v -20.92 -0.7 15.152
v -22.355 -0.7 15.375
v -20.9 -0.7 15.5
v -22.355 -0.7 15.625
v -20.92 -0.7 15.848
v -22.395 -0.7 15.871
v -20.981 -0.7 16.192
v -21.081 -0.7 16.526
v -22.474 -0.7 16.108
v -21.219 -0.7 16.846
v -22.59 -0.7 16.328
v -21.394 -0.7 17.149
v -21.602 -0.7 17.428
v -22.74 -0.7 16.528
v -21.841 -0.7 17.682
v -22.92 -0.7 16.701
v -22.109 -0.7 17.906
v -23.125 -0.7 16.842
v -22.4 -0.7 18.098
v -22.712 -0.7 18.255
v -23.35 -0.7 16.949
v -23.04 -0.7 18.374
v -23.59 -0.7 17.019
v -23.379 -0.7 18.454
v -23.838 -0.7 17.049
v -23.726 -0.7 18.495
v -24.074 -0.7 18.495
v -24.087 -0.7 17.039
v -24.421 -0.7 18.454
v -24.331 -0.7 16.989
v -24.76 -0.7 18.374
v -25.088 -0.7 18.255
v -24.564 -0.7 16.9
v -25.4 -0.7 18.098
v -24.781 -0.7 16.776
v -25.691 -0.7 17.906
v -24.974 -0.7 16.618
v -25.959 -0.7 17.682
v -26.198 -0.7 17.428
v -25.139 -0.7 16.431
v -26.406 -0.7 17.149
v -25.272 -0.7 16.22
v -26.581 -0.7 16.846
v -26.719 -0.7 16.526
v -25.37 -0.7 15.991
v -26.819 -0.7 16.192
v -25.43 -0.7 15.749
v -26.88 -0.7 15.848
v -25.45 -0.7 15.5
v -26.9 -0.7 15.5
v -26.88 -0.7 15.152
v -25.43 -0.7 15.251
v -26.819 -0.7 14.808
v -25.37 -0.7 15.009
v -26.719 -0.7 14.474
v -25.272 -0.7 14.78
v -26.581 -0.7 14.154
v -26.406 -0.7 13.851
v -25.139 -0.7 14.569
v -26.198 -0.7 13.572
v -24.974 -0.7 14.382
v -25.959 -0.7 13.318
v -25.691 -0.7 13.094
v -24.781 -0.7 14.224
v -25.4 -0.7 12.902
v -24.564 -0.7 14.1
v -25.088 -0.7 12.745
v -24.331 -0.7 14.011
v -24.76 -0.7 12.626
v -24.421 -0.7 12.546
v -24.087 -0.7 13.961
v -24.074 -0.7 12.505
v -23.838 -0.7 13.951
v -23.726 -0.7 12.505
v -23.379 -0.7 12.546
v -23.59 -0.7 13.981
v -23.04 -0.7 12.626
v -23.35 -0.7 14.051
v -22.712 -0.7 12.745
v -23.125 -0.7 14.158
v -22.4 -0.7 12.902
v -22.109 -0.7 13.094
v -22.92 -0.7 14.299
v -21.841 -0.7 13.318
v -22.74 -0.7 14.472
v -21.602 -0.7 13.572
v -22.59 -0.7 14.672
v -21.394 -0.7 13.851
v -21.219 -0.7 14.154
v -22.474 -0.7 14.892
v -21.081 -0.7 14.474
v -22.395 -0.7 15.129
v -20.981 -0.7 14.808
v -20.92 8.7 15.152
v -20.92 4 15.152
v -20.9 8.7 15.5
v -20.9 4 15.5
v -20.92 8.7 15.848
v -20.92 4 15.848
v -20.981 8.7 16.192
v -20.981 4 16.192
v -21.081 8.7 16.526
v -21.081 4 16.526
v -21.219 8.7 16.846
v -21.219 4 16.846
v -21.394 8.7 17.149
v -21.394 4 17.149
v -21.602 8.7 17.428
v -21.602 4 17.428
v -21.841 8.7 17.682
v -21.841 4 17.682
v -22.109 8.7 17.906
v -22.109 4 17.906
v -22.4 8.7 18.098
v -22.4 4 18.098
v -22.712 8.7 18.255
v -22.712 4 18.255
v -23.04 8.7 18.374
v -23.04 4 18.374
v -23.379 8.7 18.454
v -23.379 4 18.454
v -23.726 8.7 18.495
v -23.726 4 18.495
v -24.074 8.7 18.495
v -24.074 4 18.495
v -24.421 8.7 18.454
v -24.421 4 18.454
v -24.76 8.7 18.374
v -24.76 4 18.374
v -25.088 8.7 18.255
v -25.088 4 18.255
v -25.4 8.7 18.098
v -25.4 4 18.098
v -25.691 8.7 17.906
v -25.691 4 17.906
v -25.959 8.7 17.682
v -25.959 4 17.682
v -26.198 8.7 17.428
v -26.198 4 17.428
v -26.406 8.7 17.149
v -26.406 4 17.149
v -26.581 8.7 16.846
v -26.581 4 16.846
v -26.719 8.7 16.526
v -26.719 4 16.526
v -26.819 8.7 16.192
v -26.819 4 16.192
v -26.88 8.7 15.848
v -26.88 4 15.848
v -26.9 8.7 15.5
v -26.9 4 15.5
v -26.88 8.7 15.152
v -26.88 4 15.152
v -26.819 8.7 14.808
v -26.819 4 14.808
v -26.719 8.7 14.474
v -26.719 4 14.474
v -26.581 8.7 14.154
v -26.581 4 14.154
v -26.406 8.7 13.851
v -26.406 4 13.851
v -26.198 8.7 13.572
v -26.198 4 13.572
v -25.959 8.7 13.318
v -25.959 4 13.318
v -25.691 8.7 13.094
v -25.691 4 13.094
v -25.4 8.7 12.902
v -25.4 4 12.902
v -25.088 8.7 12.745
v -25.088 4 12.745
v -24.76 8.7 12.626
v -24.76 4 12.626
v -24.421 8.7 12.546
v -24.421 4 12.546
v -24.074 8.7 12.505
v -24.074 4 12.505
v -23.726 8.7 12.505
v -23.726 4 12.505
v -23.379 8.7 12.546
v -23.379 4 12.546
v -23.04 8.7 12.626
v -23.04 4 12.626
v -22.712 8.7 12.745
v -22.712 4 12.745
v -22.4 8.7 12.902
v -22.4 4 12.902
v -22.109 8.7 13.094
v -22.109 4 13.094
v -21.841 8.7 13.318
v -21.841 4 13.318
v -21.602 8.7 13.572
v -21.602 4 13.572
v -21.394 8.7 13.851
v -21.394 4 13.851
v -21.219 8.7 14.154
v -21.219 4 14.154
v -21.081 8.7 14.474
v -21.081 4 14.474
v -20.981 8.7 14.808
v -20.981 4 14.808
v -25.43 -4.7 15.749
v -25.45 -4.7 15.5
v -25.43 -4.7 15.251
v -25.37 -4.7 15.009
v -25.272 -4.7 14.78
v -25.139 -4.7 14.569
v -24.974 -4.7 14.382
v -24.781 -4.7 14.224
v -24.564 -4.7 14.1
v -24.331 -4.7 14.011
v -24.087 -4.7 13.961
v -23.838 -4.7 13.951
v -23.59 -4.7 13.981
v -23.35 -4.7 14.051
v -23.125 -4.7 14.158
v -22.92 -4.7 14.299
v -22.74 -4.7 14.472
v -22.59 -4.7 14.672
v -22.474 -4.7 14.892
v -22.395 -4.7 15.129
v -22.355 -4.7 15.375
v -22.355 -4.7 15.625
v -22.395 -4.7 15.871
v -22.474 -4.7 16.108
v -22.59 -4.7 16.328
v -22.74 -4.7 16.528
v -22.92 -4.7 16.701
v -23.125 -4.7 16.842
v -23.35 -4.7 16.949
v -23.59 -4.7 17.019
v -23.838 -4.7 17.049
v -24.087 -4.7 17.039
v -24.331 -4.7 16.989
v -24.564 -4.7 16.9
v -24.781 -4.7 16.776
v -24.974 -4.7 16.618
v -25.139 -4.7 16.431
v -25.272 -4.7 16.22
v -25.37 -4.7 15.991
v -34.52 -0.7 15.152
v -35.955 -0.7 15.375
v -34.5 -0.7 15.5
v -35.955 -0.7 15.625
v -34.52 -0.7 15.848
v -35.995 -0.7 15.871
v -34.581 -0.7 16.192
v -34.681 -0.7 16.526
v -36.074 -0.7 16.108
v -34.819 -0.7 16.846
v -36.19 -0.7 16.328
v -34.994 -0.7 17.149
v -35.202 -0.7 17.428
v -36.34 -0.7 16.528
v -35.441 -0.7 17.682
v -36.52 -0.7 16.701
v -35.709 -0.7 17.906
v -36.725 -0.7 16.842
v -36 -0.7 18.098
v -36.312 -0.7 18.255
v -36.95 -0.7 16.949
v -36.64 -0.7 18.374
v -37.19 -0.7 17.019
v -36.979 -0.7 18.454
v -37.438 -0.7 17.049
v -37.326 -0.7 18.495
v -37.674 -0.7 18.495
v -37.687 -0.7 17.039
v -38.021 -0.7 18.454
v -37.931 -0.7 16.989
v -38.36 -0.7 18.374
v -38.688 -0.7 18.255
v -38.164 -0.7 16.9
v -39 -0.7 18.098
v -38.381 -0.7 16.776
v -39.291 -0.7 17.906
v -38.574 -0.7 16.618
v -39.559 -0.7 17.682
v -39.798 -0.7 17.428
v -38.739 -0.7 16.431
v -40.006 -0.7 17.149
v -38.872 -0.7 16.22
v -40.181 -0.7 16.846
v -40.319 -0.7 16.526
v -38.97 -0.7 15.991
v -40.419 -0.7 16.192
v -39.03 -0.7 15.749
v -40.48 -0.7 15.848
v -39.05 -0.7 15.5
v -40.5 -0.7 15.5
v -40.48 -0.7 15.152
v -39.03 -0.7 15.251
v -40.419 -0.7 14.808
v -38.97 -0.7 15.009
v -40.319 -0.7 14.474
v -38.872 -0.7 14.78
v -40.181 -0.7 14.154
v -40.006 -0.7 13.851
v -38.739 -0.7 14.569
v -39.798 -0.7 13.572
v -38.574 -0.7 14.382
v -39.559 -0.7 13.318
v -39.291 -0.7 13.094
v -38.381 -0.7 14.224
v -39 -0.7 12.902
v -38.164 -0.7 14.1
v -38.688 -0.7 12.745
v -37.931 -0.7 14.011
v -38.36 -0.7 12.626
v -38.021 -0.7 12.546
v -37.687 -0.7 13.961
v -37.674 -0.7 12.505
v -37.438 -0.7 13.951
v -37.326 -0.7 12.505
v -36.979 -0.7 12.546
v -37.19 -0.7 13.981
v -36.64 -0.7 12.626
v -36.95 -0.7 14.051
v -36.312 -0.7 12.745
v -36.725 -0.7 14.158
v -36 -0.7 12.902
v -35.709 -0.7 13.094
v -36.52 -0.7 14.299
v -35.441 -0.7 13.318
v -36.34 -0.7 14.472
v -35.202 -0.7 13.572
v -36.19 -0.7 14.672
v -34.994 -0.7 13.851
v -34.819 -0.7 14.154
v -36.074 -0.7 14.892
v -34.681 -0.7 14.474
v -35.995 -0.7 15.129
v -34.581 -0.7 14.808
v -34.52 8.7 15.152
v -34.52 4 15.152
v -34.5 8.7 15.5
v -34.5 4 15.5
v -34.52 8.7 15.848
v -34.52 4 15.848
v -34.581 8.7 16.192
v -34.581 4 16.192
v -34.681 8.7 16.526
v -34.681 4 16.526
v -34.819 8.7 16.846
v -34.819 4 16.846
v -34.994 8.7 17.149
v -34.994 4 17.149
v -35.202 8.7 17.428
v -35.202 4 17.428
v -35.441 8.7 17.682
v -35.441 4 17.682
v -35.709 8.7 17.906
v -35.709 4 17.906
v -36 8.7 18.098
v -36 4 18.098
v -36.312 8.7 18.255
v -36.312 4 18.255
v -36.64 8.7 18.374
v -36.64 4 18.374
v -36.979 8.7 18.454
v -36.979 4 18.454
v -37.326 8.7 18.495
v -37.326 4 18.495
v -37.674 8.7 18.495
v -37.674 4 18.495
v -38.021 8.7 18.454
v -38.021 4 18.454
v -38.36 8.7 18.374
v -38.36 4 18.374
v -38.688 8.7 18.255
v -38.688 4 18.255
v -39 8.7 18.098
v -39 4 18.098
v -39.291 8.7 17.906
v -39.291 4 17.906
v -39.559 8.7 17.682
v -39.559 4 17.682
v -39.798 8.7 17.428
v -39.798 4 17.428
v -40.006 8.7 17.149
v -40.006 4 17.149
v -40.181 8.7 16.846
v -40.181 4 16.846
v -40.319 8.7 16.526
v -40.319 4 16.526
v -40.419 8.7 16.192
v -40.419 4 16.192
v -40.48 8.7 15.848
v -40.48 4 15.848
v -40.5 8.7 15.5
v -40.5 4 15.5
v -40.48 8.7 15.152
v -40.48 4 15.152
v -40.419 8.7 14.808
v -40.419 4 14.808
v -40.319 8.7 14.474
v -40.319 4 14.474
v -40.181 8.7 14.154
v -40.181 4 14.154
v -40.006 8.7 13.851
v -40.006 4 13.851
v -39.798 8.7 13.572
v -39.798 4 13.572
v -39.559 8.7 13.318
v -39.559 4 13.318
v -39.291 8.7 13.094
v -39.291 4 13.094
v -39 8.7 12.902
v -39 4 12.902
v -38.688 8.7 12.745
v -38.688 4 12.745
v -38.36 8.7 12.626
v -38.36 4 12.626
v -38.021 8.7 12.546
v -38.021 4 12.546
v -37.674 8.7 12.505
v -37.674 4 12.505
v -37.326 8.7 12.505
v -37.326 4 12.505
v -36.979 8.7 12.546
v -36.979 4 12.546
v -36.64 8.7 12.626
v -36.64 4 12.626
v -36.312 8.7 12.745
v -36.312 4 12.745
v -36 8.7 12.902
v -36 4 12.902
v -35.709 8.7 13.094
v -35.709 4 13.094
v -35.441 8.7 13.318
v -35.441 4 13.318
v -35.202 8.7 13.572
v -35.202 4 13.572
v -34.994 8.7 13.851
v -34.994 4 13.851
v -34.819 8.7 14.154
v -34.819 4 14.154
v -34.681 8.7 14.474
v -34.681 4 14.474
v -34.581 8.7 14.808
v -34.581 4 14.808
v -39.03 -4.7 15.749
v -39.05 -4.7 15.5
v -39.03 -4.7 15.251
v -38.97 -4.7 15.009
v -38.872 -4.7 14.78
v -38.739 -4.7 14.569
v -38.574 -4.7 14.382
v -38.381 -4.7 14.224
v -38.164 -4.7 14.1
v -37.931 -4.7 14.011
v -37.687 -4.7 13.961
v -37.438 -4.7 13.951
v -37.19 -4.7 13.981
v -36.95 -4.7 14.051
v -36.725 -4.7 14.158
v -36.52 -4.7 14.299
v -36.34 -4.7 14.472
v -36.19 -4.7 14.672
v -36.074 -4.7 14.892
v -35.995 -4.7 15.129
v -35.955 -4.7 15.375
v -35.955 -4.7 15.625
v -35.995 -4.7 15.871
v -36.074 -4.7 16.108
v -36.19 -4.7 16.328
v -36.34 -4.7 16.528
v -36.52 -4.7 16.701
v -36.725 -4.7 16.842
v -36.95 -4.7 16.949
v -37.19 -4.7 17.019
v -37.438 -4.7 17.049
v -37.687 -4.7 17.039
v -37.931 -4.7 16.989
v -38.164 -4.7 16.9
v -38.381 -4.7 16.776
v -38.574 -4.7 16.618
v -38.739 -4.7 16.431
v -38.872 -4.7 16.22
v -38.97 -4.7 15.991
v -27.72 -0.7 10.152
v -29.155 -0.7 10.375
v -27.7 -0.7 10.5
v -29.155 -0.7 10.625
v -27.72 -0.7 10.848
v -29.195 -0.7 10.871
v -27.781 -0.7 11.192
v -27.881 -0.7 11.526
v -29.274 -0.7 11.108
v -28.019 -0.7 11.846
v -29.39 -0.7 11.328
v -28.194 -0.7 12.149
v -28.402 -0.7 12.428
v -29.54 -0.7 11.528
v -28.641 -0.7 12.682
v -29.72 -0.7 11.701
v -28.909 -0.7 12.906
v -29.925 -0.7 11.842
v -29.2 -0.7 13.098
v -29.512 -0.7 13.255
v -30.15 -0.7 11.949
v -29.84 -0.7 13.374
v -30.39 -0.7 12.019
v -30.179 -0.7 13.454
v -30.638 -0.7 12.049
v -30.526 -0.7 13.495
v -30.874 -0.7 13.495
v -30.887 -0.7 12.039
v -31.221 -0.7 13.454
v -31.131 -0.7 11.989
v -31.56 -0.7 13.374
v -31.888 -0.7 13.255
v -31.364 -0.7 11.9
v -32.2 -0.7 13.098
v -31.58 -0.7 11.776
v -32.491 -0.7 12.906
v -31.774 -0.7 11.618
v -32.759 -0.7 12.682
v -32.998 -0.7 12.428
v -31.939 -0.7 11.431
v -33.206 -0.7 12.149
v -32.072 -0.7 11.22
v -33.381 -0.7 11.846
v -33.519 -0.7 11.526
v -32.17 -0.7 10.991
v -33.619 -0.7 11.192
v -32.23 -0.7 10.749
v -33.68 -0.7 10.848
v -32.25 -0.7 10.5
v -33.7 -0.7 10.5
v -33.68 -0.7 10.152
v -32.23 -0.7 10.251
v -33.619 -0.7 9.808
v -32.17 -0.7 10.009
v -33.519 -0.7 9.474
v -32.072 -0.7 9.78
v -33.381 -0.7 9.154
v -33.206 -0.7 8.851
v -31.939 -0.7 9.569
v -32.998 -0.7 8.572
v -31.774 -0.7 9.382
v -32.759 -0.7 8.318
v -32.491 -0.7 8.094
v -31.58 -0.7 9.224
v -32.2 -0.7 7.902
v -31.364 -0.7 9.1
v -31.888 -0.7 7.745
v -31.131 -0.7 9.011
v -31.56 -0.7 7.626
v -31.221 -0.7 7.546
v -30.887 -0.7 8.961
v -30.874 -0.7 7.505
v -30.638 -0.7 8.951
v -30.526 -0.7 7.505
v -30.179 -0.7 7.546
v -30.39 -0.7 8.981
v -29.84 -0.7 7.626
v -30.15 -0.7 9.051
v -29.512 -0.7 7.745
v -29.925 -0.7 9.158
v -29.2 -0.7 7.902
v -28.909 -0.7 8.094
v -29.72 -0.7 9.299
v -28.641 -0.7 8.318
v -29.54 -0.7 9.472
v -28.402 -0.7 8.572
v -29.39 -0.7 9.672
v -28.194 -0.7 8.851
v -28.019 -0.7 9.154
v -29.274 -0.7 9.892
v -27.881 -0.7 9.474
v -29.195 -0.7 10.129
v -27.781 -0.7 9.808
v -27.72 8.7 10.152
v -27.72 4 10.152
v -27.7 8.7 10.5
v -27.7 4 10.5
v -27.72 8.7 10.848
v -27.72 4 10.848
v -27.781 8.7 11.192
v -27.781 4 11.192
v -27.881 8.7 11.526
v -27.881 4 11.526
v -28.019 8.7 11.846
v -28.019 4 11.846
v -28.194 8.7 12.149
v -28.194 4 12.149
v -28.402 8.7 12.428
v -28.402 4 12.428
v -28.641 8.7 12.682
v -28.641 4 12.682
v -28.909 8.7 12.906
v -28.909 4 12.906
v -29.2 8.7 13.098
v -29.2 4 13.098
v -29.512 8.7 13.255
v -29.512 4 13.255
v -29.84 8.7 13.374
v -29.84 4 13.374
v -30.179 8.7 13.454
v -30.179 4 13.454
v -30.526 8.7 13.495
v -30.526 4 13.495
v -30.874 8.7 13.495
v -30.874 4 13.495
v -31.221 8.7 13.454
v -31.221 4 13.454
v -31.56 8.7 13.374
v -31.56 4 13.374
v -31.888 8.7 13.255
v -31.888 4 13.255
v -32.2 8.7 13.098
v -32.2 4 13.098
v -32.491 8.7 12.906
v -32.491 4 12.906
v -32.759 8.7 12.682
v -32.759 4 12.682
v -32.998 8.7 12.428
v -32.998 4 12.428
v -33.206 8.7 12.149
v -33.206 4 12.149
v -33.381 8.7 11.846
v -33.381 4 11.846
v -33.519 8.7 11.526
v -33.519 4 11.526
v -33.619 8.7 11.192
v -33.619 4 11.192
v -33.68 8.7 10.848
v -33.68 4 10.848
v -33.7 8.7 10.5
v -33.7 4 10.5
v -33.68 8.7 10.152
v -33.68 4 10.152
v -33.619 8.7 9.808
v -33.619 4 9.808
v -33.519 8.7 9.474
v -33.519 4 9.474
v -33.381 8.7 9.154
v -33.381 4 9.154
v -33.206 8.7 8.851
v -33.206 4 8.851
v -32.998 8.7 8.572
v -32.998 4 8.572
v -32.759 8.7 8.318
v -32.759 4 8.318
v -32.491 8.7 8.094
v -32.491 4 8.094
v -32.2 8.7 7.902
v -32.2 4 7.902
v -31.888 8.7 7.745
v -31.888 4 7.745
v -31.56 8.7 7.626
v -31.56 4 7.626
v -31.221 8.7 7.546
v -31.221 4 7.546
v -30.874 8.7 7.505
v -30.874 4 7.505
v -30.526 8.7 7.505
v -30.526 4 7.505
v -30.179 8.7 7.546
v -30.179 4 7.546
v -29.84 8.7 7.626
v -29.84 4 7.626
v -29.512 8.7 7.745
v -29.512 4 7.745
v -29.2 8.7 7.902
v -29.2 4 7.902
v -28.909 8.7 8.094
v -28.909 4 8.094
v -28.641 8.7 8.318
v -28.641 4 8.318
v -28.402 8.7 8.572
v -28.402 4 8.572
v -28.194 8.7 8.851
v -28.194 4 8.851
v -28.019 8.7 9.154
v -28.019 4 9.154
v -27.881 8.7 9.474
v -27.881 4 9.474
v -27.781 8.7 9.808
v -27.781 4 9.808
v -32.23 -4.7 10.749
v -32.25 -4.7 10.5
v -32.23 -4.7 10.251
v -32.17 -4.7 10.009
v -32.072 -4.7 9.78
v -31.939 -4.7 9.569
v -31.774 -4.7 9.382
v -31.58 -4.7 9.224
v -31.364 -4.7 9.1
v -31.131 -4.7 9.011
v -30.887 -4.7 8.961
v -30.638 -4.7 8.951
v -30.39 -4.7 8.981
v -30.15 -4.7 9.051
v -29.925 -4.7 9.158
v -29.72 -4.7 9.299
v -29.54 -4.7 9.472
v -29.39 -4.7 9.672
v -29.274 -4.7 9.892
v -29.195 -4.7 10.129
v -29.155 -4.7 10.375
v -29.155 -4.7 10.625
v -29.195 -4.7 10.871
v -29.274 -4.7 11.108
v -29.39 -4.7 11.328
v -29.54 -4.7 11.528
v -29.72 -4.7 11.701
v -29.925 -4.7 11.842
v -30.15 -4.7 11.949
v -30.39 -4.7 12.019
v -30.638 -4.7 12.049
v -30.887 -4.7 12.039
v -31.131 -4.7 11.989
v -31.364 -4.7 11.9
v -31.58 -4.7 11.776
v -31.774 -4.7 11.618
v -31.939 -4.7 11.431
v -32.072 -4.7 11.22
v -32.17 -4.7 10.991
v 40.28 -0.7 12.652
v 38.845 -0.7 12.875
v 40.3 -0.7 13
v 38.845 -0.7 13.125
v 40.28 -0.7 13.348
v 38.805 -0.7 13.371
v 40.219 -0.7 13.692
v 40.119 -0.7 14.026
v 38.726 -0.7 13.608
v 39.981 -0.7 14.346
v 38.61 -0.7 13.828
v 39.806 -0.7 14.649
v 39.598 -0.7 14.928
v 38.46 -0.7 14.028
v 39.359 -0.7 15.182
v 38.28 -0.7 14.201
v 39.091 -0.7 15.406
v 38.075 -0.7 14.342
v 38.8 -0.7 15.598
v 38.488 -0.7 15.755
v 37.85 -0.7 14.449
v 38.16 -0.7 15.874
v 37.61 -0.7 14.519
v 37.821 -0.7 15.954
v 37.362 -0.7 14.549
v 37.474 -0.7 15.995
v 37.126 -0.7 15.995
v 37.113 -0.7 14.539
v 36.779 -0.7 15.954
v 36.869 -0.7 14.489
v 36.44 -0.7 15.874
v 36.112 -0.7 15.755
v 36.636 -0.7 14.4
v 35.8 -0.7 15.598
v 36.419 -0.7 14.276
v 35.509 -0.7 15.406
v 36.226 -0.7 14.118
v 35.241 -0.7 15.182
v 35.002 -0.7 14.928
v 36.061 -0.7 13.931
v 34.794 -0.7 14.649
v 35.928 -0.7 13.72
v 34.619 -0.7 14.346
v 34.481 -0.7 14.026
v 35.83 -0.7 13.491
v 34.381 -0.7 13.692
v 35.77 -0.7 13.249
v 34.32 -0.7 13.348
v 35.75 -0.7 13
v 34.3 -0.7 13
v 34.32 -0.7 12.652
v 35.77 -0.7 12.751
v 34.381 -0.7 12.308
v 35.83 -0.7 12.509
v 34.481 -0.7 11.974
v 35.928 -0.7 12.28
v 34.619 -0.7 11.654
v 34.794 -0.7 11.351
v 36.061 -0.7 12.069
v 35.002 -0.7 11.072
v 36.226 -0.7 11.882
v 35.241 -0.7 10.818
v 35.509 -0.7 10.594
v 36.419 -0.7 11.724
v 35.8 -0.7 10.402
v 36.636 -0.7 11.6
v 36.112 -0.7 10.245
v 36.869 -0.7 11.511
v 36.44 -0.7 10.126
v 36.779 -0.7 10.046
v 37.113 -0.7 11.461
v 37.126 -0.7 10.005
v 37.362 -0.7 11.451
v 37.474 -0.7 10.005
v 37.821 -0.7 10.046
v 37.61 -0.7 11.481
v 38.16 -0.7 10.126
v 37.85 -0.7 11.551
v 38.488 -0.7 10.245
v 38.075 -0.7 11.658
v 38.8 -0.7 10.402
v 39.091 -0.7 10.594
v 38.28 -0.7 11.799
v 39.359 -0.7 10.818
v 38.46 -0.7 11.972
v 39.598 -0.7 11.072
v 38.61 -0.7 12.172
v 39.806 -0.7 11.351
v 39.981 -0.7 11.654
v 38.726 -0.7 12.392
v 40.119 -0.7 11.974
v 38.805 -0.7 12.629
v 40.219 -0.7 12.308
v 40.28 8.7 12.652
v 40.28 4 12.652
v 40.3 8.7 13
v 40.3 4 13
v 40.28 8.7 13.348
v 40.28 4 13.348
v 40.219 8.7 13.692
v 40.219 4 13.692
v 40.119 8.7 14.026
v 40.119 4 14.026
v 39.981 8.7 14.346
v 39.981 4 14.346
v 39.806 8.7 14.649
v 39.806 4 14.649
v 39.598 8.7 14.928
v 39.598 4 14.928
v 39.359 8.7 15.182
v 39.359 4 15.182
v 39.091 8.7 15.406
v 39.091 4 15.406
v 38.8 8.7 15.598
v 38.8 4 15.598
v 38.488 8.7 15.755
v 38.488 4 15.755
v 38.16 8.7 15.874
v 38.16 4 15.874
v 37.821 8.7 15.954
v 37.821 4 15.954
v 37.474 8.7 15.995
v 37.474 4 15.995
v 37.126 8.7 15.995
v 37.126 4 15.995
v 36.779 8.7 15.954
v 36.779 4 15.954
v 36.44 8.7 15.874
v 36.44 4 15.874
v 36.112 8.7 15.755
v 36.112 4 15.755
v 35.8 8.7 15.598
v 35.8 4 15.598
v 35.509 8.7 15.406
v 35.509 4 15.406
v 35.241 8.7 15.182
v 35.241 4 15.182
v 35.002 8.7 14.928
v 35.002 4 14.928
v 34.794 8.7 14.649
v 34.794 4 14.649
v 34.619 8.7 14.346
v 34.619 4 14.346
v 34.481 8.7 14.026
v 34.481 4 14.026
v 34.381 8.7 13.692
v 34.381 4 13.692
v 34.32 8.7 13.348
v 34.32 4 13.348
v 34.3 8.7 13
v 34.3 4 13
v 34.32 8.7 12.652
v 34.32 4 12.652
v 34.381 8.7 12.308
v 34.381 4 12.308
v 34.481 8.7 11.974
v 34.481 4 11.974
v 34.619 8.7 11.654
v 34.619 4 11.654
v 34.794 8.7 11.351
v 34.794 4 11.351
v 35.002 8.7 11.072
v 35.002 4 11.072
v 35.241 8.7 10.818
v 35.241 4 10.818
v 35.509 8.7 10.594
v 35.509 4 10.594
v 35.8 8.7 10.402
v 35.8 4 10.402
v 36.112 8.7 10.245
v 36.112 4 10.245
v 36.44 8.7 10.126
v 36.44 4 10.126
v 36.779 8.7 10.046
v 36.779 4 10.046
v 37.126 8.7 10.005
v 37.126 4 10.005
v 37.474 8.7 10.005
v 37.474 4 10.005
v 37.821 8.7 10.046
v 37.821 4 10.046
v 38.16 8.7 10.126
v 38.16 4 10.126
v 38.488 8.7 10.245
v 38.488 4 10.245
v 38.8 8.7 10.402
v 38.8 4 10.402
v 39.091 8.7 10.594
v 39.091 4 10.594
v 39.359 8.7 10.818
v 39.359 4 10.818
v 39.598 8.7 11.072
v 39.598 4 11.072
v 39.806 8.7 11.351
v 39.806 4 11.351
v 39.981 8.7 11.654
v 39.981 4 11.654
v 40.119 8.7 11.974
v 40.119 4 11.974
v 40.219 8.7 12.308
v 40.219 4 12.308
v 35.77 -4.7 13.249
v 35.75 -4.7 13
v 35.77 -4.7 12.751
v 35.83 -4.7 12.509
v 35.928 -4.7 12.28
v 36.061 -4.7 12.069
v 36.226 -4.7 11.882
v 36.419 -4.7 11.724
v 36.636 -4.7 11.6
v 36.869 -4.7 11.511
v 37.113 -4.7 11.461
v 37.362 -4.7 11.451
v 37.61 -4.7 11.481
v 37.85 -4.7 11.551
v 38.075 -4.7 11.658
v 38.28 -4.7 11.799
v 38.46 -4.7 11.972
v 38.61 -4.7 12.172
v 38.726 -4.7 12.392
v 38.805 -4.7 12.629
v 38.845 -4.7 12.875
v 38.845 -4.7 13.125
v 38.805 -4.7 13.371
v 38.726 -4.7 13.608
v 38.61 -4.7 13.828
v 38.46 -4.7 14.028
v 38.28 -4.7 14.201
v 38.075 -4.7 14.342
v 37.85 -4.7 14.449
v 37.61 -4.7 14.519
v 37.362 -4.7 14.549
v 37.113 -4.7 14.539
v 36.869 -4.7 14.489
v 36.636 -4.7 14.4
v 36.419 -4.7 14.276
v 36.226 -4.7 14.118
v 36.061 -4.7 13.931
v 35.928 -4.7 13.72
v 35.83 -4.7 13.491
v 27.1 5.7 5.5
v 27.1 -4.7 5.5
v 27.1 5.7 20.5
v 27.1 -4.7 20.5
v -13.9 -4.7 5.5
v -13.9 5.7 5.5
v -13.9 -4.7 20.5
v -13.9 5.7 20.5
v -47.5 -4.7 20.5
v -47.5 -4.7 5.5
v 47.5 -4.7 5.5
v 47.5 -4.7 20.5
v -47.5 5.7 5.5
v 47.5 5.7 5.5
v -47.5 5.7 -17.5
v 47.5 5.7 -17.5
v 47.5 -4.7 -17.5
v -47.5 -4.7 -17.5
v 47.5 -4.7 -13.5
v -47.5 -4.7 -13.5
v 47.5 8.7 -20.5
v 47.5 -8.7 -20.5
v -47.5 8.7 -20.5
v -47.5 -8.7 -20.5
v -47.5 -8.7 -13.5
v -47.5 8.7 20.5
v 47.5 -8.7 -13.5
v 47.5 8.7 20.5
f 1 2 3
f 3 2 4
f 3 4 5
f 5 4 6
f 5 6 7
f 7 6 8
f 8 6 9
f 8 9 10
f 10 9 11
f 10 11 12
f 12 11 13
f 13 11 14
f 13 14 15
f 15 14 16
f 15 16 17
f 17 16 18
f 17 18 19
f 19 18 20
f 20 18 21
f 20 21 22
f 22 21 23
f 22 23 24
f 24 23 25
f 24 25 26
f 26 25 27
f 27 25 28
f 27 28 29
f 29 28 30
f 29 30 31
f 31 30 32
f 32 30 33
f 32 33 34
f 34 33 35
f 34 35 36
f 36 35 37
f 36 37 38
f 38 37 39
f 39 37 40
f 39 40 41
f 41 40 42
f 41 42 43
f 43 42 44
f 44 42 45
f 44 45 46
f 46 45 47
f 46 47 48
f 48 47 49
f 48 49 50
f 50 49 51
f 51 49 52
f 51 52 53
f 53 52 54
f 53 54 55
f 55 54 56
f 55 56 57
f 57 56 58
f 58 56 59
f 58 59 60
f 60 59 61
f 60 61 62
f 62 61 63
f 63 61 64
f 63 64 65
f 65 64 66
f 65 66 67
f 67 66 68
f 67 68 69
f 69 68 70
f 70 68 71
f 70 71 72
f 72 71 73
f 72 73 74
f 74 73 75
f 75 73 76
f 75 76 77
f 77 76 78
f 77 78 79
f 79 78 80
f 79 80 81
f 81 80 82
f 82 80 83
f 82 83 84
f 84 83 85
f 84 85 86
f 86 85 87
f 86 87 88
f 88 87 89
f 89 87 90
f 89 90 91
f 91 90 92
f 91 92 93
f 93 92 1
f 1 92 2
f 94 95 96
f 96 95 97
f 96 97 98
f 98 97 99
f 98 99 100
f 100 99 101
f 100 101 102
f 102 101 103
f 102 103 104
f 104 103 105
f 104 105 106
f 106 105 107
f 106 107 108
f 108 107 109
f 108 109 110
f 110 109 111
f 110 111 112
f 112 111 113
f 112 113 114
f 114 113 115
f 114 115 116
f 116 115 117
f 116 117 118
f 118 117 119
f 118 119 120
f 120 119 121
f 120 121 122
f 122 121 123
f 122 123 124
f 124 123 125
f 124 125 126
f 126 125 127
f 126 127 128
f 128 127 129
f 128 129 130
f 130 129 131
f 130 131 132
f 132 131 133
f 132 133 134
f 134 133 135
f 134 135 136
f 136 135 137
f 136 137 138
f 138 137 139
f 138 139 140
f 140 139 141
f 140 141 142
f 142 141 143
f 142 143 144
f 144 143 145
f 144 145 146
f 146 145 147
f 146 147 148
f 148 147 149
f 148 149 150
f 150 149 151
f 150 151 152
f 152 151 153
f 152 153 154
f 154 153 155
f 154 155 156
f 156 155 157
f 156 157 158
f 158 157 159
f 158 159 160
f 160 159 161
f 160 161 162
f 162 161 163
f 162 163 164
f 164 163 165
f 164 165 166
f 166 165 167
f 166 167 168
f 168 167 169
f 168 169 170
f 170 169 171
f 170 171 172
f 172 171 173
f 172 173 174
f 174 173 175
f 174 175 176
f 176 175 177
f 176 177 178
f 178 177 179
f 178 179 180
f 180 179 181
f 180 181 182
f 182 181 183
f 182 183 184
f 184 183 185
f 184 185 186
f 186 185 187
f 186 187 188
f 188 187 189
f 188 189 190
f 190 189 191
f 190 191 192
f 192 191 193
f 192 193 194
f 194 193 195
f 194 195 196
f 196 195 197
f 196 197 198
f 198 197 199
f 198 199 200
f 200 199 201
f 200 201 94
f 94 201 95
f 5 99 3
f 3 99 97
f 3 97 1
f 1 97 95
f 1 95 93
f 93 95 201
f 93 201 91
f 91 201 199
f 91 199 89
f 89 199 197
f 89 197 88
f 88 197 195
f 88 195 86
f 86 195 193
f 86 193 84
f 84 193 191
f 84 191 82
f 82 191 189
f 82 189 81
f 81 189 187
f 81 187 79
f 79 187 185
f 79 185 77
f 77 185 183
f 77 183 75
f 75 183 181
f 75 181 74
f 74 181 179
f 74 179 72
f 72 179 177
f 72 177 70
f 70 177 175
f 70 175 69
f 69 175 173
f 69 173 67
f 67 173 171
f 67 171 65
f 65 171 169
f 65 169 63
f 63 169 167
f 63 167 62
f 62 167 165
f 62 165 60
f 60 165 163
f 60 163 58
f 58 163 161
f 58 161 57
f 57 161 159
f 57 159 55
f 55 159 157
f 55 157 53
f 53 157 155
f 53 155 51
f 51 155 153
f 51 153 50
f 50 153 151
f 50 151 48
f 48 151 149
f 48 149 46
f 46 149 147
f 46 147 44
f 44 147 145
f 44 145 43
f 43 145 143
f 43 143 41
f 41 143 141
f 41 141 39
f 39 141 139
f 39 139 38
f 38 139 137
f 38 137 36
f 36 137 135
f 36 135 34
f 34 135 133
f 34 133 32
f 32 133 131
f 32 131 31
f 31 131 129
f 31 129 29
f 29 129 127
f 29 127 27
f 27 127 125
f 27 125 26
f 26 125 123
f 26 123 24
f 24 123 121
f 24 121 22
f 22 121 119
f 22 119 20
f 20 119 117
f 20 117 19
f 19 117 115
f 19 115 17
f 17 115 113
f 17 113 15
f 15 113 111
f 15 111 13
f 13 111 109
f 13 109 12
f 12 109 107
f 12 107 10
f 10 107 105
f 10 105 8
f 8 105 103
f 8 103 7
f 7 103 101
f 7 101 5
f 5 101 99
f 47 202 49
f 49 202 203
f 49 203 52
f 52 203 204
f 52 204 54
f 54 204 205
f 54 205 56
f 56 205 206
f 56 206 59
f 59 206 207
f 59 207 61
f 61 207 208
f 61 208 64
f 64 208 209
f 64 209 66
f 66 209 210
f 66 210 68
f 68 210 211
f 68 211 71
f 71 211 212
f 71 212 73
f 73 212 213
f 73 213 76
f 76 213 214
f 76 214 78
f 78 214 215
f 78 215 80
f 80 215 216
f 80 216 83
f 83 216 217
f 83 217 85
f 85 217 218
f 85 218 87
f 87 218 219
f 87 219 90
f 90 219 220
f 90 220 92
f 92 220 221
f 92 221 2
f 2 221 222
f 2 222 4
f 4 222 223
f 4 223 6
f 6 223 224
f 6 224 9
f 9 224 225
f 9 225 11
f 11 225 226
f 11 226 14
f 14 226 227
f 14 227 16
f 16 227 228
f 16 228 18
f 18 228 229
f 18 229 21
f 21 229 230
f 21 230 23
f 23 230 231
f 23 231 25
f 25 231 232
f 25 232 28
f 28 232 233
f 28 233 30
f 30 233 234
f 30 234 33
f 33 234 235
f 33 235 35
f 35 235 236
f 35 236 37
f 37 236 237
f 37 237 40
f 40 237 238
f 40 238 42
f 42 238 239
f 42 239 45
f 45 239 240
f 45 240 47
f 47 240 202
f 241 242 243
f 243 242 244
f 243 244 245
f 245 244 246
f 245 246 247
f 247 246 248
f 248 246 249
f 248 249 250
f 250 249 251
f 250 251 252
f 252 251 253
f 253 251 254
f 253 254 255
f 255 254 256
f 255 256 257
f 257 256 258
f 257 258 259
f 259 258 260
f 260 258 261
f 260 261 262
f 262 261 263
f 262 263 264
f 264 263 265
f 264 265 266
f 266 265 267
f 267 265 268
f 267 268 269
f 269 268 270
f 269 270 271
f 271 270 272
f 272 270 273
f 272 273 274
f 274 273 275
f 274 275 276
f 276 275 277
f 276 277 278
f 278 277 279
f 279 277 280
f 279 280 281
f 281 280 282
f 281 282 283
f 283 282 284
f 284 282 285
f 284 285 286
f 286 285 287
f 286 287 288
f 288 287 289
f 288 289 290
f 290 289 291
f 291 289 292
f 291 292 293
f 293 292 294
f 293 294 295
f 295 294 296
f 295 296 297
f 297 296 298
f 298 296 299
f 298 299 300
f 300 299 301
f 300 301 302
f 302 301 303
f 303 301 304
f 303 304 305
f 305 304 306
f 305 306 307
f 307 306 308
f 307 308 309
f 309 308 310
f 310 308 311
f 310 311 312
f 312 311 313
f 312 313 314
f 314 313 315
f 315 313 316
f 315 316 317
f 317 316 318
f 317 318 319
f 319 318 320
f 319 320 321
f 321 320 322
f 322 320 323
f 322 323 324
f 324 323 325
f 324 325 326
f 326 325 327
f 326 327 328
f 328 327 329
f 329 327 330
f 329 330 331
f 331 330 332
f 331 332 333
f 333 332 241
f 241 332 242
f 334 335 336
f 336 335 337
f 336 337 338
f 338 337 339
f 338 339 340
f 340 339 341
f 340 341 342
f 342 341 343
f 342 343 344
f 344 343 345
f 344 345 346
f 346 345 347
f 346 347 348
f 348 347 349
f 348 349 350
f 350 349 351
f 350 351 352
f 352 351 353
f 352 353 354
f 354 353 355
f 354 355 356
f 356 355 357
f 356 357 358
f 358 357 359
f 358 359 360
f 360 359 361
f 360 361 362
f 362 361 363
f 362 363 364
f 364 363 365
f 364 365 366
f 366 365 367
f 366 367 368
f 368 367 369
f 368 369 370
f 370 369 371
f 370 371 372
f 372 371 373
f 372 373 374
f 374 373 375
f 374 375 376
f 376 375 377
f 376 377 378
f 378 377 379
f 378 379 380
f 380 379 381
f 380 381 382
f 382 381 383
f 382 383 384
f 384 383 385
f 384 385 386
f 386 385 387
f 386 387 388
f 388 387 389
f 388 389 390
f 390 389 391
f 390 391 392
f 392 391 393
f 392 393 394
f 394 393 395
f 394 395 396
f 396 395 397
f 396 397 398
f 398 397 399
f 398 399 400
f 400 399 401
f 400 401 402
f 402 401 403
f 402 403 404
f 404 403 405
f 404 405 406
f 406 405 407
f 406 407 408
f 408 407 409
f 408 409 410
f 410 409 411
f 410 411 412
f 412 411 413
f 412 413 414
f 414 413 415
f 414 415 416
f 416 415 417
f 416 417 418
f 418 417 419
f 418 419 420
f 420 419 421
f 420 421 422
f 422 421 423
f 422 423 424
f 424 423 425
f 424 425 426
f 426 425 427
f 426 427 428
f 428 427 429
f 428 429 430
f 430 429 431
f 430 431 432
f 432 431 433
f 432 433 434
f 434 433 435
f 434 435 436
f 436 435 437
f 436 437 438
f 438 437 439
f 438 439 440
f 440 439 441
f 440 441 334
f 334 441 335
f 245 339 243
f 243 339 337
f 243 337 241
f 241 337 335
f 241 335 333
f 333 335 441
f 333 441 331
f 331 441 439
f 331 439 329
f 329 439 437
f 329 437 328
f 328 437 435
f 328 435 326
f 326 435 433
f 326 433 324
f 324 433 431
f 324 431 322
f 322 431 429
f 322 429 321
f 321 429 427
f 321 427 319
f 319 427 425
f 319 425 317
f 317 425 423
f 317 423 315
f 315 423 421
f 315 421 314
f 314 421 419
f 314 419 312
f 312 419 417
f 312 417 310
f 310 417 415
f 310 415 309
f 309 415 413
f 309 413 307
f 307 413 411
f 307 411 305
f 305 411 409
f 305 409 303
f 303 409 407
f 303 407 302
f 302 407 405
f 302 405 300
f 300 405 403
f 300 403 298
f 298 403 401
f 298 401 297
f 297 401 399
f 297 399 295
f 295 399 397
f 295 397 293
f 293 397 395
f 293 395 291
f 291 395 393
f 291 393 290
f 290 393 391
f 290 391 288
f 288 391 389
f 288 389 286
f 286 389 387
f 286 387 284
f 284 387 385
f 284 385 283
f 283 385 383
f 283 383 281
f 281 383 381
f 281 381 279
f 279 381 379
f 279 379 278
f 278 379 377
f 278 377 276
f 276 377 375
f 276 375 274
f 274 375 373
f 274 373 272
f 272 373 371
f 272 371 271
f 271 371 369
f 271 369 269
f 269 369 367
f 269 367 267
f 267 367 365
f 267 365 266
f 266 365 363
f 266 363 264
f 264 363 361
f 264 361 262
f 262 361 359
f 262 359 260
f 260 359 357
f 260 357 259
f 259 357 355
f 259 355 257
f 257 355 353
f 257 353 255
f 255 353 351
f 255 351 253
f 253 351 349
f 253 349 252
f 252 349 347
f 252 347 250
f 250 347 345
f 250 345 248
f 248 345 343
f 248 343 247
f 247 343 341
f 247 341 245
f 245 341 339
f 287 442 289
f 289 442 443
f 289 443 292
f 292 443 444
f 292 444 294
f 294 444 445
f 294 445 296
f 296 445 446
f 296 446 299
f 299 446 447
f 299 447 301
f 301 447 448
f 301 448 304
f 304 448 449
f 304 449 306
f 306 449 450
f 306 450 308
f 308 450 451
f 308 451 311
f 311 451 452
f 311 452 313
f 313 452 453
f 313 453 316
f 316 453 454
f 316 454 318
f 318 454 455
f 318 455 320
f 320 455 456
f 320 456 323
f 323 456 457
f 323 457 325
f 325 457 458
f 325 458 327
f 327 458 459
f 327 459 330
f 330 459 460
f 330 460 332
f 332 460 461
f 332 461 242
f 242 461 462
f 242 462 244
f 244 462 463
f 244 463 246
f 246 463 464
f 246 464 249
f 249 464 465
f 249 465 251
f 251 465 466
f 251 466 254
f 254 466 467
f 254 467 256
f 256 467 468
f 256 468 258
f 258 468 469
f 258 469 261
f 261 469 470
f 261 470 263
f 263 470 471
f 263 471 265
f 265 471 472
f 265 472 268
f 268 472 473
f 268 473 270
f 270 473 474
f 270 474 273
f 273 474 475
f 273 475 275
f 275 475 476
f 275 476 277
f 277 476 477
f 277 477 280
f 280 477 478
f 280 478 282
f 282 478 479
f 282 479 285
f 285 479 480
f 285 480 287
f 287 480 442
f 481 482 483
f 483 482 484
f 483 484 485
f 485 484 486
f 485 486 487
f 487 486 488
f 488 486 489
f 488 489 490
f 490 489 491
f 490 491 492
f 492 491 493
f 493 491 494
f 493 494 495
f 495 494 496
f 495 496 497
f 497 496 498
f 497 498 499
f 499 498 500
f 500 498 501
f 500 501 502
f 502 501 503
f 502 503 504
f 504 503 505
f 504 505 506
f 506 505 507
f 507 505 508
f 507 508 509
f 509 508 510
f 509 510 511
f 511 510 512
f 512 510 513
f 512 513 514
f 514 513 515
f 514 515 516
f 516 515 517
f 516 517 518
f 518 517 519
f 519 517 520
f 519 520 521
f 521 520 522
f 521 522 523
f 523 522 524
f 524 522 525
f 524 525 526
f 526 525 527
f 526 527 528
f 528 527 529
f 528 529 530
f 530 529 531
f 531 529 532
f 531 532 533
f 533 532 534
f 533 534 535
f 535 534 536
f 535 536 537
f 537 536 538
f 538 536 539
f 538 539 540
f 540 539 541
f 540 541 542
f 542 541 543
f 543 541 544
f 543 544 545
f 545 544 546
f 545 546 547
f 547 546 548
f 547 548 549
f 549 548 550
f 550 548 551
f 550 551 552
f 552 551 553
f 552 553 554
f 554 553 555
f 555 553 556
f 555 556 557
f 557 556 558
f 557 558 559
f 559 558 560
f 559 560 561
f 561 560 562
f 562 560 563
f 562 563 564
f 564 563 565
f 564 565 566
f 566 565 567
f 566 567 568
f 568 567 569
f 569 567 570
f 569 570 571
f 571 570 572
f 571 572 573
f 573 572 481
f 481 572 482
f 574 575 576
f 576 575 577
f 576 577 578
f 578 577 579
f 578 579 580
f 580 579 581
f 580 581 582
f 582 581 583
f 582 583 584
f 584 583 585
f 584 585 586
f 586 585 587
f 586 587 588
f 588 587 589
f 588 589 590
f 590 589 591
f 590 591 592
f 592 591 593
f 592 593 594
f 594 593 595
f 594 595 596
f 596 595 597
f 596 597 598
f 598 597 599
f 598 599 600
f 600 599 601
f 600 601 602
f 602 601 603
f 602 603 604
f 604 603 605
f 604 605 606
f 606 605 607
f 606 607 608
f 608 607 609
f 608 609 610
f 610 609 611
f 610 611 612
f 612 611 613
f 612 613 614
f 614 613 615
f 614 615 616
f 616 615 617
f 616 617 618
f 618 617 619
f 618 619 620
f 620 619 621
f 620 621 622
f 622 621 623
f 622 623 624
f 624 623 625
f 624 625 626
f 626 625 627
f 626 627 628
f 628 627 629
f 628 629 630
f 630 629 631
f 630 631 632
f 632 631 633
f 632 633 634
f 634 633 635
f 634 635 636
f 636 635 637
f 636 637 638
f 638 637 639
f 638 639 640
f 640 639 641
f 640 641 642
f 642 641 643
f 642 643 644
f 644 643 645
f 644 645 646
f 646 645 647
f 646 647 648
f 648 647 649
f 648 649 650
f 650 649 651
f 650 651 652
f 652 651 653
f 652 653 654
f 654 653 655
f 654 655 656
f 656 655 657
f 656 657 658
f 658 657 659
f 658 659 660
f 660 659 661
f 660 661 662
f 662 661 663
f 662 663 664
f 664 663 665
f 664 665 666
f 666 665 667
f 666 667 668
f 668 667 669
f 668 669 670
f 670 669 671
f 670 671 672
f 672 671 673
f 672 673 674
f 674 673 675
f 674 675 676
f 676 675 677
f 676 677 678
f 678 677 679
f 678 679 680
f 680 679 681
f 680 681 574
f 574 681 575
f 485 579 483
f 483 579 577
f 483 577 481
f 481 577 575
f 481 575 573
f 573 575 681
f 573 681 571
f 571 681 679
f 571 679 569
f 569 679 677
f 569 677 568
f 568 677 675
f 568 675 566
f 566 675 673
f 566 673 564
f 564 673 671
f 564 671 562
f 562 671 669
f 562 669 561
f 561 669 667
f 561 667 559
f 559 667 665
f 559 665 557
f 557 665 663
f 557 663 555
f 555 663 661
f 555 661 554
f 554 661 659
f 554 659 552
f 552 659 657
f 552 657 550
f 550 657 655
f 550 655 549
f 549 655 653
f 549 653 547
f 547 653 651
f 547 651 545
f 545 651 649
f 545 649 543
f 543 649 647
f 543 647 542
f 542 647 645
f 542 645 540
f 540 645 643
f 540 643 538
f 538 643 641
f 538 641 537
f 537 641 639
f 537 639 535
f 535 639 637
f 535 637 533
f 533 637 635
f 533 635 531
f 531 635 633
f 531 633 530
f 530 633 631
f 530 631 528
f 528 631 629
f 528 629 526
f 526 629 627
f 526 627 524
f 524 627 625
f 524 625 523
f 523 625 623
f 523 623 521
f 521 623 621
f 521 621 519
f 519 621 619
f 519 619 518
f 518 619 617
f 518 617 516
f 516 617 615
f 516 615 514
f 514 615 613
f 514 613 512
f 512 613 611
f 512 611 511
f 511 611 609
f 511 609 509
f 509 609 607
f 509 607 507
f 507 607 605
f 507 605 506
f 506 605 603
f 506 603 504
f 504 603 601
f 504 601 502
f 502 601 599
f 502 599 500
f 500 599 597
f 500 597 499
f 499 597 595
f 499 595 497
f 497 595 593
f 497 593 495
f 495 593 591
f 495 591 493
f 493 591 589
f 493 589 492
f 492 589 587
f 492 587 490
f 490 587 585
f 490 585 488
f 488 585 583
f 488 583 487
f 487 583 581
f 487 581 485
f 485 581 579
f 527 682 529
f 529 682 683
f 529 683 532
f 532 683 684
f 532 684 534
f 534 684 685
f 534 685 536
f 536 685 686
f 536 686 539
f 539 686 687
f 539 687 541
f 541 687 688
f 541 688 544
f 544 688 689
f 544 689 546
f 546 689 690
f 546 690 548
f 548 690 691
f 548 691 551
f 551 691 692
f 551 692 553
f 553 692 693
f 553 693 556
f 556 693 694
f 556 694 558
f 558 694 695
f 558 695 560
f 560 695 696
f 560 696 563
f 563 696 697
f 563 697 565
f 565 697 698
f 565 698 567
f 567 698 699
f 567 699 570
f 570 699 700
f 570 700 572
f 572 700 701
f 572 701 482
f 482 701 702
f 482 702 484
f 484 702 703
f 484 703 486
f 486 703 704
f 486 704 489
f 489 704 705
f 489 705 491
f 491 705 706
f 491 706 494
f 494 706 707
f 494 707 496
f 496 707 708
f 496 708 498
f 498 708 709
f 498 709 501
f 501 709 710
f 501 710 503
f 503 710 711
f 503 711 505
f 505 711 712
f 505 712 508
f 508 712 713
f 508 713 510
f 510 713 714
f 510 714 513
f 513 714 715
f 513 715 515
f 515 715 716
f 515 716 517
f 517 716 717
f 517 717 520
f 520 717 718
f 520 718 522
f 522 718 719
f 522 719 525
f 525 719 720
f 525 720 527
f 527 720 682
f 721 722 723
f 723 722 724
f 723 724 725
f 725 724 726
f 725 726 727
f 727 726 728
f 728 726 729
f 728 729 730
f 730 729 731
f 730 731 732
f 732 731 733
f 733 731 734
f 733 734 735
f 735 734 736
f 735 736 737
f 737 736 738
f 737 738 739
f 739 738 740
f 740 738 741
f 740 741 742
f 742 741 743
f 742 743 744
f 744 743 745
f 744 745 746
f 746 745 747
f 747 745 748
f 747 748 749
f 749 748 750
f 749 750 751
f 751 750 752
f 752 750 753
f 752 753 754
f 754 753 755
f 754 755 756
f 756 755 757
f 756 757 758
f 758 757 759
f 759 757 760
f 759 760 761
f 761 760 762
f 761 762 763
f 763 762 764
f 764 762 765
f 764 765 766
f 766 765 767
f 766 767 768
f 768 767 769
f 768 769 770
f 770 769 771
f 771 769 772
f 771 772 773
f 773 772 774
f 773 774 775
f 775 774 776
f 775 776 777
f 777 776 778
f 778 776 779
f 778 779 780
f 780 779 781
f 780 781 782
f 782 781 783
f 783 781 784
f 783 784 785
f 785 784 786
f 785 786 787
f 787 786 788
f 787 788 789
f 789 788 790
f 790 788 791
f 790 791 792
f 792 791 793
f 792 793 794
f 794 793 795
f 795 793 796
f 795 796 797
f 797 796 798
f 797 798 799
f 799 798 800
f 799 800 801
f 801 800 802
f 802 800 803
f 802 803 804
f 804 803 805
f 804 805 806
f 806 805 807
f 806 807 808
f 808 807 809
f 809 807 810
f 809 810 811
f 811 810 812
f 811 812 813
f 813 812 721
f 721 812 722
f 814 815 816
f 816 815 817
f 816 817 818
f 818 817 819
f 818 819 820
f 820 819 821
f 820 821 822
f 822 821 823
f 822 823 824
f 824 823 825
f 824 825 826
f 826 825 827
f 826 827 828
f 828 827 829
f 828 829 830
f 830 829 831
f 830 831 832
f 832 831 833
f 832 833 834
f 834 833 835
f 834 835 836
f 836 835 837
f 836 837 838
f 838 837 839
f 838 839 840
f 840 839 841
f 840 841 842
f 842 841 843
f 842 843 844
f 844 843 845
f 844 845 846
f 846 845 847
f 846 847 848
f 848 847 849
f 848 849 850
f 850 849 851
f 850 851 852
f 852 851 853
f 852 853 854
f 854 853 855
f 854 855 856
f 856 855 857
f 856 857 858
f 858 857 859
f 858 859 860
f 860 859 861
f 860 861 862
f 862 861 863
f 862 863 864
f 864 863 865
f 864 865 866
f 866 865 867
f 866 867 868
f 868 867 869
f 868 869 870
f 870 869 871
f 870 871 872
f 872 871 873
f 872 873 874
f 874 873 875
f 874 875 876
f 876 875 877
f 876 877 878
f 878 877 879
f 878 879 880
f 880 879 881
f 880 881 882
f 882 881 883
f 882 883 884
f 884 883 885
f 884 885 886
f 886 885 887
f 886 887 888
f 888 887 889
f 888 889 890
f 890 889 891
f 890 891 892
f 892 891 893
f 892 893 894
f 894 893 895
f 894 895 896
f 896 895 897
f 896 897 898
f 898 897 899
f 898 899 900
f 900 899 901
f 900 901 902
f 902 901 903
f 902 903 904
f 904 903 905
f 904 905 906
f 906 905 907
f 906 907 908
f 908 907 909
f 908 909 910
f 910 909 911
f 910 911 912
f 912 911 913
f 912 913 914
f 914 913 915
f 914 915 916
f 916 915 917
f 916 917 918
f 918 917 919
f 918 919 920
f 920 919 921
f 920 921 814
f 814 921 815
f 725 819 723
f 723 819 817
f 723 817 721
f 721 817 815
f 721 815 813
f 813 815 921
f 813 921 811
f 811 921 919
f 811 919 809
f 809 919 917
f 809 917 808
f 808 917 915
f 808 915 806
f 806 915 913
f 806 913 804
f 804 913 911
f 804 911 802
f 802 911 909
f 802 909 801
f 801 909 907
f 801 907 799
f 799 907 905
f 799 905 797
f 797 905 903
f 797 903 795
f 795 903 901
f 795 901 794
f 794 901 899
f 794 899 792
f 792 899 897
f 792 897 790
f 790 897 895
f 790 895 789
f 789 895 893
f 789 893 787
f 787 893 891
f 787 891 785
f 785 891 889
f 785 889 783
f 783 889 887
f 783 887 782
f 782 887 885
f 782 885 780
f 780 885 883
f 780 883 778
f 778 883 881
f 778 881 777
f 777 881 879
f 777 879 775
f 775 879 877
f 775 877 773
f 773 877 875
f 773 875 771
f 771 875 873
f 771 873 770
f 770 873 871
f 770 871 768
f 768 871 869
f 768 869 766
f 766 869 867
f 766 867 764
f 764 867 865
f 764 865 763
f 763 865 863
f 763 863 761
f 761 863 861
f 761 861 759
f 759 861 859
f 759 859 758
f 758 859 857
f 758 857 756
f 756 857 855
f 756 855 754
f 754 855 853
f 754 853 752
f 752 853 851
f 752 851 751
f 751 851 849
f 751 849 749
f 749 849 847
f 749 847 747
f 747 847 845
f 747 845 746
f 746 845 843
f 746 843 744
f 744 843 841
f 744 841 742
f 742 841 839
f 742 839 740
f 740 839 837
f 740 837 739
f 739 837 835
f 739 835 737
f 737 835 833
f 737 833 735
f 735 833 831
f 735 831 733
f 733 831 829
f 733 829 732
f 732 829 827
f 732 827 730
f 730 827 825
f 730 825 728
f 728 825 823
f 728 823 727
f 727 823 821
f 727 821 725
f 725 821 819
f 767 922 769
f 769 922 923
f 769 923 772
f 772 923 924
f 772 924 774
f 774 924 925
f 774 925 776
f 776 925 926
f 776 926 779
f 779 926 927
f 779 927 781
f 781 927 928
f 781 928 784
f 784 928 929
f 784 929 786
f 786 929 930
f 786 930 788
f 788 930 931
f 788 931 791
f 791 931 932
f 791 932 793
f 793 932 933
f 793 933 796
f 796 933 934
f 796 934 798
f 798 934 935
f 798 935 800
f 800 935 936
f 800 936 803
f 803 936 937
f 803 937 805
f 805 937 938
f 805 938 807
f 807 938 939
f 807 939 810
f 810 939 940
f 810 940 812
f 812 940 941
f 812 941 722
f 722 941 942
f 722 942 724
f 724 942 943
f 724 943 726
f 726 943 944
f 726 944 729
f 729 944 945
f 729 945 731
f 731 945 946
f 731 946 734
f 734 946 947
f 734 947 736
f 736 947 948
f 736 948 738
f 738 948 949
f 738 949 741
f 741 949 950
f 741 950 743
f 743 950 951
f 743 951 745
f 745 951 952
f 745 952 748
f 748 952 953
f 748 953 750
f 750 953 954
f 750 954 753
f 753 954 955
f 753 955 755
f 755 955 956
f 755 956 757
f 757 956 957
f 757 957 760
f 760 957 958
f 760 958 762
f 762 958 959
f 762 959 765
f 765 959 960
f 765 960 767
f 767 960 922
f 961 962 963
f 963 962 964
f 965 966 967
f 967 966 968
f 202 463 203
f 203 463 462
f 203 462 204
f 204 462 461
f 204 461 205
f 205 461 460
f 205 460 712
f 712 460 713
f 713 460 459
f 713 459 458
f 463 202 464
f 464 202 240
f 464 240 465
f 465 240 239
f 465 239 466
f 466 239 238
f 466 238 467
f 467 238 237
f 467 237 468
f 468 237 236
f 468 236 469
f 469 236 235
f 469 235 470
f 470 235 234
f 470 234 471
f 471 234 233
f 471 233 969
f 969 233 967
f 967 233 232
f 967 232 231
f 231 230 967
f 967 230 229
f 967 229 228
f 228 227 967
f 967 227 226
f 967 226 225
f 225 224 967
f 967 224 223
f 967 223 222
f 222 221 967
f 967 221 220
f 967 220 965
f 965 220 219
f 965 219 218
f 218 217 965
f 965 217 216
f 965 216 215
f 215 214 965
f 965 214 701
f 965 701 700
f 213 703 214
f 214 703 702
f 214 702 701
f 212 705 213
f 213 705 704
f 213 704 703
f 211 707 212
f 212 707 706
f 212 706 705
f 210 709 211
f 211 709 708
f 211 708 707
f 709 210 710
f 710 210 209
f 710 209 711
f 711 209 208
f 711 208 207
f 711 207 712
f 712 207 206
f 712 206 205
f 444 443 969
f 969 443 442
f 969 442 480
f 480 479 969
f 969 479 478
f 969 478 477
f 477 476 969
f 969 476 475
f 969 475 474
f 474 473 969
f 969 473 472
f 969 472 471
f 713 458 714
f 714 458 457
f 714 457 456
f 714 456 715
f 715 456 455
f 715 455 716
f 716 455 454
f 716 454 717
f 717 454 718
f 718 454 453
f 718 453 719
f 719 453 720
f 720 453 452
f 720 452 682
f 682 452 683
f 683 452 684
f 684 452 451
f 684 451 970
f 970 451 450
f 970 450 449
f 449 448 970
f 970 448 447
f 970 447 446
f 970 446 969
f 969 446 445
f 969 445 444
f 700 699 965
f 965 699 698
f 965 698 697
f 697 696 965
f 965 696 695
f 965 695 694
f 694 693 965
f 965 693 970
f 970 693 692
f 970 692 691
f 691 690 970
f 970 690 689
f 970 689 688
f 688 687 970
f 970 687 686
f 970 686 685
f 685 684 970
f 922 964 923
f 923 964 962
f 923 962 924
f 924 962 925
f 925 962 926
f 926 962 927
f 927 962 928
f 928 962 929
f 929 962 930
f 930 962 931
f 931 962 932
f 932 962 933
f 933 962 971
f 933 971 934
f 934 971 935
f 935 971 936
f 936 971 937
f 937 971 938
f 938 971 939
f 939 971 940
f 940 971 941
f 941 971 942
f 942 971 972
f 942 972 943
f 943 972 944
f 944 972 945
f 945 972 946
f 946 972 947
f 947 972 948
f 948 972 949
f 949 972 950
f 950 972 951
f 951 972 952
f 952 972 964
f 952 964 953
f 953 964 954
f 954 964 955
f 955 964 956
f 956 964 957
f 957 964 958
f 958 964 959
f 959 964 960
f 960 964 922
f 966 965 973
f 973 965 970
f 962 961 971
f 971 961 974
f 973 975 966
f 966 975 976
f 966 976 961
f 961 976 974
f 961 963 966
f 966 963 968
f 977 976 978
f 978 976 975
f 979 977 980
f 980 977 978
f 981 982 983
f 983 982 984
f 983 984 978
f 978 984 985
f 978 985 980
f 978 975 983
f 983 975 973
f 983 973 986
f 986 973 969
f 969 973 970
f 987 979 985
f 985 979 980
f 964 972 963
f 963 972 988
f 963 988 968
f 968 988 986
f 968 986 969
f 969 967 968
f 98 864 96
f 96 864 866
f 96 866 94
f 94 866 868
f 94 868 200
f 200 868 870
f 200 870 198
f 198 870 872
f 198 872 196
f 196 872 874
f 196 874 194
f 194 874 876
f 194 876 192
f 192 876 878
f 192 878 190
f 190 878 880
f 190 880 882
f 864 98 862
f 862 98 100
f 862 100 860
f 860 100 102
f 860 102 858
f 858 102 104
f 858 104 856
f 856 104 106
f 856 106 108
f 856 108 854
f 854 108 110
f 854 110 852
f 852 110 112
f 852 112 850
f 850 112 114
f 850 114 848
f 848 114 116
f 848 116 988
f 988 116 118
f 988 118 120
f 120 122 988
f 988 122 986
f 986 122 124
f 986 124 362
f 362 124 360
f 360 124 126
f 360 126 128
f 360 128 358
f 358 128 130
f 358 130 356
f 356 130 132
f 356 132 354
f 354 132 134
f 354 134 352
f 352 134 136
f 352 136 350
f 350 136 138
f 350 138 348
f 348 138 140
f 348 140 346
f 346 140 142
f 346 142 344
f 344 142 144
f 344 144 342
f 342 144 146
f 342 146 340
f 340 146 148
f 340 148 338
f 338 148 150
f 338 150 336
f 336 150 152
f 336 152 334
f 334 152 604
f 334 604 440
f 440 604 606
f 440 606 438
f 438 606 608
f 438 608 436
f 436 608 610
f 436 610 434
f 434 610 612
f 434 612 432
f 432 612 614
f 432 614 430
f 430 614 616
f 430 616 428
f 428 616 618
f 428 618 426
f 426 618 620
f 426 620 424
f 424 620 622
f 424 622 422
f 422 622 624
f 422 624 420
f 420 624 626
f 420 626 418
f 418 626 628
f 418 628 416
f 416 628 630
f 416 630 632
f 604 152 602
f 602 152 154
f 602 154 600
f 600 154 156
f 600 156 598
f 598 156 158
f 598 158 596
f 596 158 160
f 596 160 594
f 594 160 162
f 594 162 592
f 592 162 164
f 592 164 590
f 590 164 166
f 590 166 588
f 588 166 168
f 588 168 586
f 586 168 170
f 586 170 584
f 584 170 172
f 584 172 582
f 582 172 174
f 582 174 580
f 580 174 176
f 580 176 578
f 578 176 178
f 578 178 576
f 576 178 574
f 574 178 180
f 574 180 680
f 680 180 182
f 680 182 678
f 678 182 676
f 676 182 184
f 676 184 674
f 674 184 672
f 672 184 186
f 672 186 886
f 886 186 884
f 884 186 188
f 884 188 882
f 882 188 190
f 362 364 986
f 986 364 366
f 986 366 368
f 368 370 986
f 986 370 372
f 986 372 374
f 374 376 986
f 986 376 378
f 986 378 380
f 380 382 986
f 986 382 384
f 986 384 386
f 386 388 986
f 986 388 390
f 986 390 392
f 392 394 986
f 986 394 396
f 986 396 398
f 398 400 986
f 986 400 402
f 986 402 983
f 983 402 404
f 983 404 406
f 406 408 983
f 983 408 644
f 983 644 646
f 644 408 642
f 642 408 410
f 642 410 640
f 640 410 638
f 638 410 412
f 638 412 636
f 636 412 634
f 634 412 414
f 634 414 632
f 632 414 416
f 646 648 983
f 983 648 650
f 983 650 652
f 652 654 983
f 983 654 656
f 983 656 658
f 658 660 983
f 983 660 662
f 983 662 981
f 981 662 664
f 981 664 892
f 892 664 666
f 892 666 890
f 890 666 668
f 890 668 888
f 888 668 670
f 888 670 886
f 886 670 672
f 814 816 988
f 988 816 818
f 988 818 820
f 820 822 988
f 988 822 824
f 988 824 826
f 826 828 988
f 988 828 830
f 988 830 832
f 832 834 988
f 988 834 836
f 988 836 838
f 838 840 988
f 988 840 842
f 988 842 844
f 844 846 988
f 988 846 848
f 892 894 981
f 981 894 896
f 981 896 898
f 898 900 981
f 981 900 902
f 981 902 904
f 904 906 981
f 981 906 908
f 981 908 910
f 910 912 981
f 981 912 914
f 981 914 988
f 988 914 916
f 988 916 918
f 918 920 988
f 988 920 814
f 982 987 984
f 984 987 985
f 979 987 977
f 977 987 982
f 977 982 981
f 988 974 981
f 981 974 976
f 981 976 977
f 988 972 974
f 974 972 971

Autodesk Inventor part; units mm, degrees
ref_plane "YZ Plane" through (0, 0, 0) normal (1, 0, 0) x (0, 1, 0)
ref_plane "XZ Plane" through (0, 0, 0) normal (0, 1, 0) x (-1, 0, 0)
ref_plane "XY Plane" through (0, 0, 0) normal (0, 0, 1) x (1, 0, 0)
sketch "Sketch1" plane through (0, 0, 0) normal (1, 0, 0) x (0, 1, 0)
  line L0 (-4.7, -13.5) -> (-8.7, -13.5)
  line L1 (-8.7, -13.5) -> (-8.7, -20.5)
  line L2 (-8.7, -20.5) -> (8.7, -20.5)
  line L3 (8.7, -20.5) -> (8.7, 20.5)
  line L4 (8.7, 20.5) -> (-4.7, 20.5)
  line L5 (-4.7, 20.5) -> (-4.7, 5.5)
  line L6 (-4.7, 5.5) -> (5.7, 5.5)
  line L7 (5.7, 5.5) -> (5.7, -17.5)
  line L8 (5.7, -17.5) -> (-4.7, -17.5)
  line L9 (-4.7, -17.5) -> (-4.7, -13.5)
  line L10 (8.7, 20.5) -> (-8.7, -20.5) construction
  point P0 (0, 0)
  point P1 (0, 0)
  dimension "d0" = 4
  dimension "d1" = 4
  dimension "d2" = 10.4
  dimension "d3" = 3
  dimension "d4" = 3
  dimension "d5" = 23
  dimension "d6" = 10.4
  dimension "d7" = 15
extrude "Outline" add sketch "Sketch1" along normal mid plane 95
sketch "Sketch3" plane through (-47.5, -4.7, 20.5) normal (0, 0, 1) x (1, 0, 0)
  line L0 (0, 0) -> (95, 0) projected
  line L1 (74.6, 0) -> (33.6, 0)
  line L2 (33.6, 0) -> (33.6, 10.4)
  line L3 (33.6, 10.4) -> (74.6, 10.4)
  line L4 (74.6, 10.4) -> (74.6, 0)
  line L5 (95, 13.4) -> (95, 0) projected
  line L6 (0, 0) -> (0, 13.4) projected
  line L7 (0, 10.4) -> (95, 10.4) projected
  line L8 (95, 0) -> (95, 10.4) projected
  line L9 (0, 0) -> (95, 0) projected
  line L10 (0, 10.4) -> (0, 0) projected
  point P0 (47.5, 4.7)
  point P1 (33.6, 0)
  dimension "d22" = 33.6
  dimension "d26" = 20.4
extrude "DriverCutout" cut sketch "Sketch3" against normal up to next contours L2 L3 L4 L0
sketch "Sketch2" plane through (-47.5, 8.7, 20.5) normal (0, 1, 0) x (1, 0, 0)
  line L0 (0, 15) -> (33.6, 15) projected
  line L1 (95, 0) -> (95, 15) projected
  line L2 (0, 0) -> (33.6, 0) projected
  line L3 (0, 15) -> (0, 0) projected
  line L4 (74.6, 0) -> (74.6, 15) projected
  line L5 (74.6, 15) -> (95, 15) projected
  line L6 (74.6, 0) -> (95, 0) projected
  line L7 (33.6, 15) -> (33.6, 0) projected
  line L8 (10, 5) -> (16.8, 10) construction
  line L9 (16.8, 10) -> (23.6, 5) construction
  line L10 (74.6, 0) -> (74.6, 15) construction
  line L11 (23.6, 5) -> (33.6, 5) construction
  line L12 (33.6, 0) -> (33.6, 15) construction
  line L13 (10, 5) -> (0, 5) construction
  line L14 (74.6, 15) -> (95, 0) construction
  point P0 (47.5, 20.5)
  point P1 (84.8, 7.5)
  dimension "d27" = 5
  dimension "d28" = 5
  dimension "d29" = 10
hole "ScrewHoles" at (-37.5, 8.7, 15.5) at (-30.7, 8.7, 10.5) at (-23.9, 8.7, 15.5) at (37.3, 8.7, 13) direction (0, -1, 0) diameter 3.1 depth 13.4 counterbore diameter 6 counterbore depth 9.4
properties part number "Receptacle_V2_3DPrint"
